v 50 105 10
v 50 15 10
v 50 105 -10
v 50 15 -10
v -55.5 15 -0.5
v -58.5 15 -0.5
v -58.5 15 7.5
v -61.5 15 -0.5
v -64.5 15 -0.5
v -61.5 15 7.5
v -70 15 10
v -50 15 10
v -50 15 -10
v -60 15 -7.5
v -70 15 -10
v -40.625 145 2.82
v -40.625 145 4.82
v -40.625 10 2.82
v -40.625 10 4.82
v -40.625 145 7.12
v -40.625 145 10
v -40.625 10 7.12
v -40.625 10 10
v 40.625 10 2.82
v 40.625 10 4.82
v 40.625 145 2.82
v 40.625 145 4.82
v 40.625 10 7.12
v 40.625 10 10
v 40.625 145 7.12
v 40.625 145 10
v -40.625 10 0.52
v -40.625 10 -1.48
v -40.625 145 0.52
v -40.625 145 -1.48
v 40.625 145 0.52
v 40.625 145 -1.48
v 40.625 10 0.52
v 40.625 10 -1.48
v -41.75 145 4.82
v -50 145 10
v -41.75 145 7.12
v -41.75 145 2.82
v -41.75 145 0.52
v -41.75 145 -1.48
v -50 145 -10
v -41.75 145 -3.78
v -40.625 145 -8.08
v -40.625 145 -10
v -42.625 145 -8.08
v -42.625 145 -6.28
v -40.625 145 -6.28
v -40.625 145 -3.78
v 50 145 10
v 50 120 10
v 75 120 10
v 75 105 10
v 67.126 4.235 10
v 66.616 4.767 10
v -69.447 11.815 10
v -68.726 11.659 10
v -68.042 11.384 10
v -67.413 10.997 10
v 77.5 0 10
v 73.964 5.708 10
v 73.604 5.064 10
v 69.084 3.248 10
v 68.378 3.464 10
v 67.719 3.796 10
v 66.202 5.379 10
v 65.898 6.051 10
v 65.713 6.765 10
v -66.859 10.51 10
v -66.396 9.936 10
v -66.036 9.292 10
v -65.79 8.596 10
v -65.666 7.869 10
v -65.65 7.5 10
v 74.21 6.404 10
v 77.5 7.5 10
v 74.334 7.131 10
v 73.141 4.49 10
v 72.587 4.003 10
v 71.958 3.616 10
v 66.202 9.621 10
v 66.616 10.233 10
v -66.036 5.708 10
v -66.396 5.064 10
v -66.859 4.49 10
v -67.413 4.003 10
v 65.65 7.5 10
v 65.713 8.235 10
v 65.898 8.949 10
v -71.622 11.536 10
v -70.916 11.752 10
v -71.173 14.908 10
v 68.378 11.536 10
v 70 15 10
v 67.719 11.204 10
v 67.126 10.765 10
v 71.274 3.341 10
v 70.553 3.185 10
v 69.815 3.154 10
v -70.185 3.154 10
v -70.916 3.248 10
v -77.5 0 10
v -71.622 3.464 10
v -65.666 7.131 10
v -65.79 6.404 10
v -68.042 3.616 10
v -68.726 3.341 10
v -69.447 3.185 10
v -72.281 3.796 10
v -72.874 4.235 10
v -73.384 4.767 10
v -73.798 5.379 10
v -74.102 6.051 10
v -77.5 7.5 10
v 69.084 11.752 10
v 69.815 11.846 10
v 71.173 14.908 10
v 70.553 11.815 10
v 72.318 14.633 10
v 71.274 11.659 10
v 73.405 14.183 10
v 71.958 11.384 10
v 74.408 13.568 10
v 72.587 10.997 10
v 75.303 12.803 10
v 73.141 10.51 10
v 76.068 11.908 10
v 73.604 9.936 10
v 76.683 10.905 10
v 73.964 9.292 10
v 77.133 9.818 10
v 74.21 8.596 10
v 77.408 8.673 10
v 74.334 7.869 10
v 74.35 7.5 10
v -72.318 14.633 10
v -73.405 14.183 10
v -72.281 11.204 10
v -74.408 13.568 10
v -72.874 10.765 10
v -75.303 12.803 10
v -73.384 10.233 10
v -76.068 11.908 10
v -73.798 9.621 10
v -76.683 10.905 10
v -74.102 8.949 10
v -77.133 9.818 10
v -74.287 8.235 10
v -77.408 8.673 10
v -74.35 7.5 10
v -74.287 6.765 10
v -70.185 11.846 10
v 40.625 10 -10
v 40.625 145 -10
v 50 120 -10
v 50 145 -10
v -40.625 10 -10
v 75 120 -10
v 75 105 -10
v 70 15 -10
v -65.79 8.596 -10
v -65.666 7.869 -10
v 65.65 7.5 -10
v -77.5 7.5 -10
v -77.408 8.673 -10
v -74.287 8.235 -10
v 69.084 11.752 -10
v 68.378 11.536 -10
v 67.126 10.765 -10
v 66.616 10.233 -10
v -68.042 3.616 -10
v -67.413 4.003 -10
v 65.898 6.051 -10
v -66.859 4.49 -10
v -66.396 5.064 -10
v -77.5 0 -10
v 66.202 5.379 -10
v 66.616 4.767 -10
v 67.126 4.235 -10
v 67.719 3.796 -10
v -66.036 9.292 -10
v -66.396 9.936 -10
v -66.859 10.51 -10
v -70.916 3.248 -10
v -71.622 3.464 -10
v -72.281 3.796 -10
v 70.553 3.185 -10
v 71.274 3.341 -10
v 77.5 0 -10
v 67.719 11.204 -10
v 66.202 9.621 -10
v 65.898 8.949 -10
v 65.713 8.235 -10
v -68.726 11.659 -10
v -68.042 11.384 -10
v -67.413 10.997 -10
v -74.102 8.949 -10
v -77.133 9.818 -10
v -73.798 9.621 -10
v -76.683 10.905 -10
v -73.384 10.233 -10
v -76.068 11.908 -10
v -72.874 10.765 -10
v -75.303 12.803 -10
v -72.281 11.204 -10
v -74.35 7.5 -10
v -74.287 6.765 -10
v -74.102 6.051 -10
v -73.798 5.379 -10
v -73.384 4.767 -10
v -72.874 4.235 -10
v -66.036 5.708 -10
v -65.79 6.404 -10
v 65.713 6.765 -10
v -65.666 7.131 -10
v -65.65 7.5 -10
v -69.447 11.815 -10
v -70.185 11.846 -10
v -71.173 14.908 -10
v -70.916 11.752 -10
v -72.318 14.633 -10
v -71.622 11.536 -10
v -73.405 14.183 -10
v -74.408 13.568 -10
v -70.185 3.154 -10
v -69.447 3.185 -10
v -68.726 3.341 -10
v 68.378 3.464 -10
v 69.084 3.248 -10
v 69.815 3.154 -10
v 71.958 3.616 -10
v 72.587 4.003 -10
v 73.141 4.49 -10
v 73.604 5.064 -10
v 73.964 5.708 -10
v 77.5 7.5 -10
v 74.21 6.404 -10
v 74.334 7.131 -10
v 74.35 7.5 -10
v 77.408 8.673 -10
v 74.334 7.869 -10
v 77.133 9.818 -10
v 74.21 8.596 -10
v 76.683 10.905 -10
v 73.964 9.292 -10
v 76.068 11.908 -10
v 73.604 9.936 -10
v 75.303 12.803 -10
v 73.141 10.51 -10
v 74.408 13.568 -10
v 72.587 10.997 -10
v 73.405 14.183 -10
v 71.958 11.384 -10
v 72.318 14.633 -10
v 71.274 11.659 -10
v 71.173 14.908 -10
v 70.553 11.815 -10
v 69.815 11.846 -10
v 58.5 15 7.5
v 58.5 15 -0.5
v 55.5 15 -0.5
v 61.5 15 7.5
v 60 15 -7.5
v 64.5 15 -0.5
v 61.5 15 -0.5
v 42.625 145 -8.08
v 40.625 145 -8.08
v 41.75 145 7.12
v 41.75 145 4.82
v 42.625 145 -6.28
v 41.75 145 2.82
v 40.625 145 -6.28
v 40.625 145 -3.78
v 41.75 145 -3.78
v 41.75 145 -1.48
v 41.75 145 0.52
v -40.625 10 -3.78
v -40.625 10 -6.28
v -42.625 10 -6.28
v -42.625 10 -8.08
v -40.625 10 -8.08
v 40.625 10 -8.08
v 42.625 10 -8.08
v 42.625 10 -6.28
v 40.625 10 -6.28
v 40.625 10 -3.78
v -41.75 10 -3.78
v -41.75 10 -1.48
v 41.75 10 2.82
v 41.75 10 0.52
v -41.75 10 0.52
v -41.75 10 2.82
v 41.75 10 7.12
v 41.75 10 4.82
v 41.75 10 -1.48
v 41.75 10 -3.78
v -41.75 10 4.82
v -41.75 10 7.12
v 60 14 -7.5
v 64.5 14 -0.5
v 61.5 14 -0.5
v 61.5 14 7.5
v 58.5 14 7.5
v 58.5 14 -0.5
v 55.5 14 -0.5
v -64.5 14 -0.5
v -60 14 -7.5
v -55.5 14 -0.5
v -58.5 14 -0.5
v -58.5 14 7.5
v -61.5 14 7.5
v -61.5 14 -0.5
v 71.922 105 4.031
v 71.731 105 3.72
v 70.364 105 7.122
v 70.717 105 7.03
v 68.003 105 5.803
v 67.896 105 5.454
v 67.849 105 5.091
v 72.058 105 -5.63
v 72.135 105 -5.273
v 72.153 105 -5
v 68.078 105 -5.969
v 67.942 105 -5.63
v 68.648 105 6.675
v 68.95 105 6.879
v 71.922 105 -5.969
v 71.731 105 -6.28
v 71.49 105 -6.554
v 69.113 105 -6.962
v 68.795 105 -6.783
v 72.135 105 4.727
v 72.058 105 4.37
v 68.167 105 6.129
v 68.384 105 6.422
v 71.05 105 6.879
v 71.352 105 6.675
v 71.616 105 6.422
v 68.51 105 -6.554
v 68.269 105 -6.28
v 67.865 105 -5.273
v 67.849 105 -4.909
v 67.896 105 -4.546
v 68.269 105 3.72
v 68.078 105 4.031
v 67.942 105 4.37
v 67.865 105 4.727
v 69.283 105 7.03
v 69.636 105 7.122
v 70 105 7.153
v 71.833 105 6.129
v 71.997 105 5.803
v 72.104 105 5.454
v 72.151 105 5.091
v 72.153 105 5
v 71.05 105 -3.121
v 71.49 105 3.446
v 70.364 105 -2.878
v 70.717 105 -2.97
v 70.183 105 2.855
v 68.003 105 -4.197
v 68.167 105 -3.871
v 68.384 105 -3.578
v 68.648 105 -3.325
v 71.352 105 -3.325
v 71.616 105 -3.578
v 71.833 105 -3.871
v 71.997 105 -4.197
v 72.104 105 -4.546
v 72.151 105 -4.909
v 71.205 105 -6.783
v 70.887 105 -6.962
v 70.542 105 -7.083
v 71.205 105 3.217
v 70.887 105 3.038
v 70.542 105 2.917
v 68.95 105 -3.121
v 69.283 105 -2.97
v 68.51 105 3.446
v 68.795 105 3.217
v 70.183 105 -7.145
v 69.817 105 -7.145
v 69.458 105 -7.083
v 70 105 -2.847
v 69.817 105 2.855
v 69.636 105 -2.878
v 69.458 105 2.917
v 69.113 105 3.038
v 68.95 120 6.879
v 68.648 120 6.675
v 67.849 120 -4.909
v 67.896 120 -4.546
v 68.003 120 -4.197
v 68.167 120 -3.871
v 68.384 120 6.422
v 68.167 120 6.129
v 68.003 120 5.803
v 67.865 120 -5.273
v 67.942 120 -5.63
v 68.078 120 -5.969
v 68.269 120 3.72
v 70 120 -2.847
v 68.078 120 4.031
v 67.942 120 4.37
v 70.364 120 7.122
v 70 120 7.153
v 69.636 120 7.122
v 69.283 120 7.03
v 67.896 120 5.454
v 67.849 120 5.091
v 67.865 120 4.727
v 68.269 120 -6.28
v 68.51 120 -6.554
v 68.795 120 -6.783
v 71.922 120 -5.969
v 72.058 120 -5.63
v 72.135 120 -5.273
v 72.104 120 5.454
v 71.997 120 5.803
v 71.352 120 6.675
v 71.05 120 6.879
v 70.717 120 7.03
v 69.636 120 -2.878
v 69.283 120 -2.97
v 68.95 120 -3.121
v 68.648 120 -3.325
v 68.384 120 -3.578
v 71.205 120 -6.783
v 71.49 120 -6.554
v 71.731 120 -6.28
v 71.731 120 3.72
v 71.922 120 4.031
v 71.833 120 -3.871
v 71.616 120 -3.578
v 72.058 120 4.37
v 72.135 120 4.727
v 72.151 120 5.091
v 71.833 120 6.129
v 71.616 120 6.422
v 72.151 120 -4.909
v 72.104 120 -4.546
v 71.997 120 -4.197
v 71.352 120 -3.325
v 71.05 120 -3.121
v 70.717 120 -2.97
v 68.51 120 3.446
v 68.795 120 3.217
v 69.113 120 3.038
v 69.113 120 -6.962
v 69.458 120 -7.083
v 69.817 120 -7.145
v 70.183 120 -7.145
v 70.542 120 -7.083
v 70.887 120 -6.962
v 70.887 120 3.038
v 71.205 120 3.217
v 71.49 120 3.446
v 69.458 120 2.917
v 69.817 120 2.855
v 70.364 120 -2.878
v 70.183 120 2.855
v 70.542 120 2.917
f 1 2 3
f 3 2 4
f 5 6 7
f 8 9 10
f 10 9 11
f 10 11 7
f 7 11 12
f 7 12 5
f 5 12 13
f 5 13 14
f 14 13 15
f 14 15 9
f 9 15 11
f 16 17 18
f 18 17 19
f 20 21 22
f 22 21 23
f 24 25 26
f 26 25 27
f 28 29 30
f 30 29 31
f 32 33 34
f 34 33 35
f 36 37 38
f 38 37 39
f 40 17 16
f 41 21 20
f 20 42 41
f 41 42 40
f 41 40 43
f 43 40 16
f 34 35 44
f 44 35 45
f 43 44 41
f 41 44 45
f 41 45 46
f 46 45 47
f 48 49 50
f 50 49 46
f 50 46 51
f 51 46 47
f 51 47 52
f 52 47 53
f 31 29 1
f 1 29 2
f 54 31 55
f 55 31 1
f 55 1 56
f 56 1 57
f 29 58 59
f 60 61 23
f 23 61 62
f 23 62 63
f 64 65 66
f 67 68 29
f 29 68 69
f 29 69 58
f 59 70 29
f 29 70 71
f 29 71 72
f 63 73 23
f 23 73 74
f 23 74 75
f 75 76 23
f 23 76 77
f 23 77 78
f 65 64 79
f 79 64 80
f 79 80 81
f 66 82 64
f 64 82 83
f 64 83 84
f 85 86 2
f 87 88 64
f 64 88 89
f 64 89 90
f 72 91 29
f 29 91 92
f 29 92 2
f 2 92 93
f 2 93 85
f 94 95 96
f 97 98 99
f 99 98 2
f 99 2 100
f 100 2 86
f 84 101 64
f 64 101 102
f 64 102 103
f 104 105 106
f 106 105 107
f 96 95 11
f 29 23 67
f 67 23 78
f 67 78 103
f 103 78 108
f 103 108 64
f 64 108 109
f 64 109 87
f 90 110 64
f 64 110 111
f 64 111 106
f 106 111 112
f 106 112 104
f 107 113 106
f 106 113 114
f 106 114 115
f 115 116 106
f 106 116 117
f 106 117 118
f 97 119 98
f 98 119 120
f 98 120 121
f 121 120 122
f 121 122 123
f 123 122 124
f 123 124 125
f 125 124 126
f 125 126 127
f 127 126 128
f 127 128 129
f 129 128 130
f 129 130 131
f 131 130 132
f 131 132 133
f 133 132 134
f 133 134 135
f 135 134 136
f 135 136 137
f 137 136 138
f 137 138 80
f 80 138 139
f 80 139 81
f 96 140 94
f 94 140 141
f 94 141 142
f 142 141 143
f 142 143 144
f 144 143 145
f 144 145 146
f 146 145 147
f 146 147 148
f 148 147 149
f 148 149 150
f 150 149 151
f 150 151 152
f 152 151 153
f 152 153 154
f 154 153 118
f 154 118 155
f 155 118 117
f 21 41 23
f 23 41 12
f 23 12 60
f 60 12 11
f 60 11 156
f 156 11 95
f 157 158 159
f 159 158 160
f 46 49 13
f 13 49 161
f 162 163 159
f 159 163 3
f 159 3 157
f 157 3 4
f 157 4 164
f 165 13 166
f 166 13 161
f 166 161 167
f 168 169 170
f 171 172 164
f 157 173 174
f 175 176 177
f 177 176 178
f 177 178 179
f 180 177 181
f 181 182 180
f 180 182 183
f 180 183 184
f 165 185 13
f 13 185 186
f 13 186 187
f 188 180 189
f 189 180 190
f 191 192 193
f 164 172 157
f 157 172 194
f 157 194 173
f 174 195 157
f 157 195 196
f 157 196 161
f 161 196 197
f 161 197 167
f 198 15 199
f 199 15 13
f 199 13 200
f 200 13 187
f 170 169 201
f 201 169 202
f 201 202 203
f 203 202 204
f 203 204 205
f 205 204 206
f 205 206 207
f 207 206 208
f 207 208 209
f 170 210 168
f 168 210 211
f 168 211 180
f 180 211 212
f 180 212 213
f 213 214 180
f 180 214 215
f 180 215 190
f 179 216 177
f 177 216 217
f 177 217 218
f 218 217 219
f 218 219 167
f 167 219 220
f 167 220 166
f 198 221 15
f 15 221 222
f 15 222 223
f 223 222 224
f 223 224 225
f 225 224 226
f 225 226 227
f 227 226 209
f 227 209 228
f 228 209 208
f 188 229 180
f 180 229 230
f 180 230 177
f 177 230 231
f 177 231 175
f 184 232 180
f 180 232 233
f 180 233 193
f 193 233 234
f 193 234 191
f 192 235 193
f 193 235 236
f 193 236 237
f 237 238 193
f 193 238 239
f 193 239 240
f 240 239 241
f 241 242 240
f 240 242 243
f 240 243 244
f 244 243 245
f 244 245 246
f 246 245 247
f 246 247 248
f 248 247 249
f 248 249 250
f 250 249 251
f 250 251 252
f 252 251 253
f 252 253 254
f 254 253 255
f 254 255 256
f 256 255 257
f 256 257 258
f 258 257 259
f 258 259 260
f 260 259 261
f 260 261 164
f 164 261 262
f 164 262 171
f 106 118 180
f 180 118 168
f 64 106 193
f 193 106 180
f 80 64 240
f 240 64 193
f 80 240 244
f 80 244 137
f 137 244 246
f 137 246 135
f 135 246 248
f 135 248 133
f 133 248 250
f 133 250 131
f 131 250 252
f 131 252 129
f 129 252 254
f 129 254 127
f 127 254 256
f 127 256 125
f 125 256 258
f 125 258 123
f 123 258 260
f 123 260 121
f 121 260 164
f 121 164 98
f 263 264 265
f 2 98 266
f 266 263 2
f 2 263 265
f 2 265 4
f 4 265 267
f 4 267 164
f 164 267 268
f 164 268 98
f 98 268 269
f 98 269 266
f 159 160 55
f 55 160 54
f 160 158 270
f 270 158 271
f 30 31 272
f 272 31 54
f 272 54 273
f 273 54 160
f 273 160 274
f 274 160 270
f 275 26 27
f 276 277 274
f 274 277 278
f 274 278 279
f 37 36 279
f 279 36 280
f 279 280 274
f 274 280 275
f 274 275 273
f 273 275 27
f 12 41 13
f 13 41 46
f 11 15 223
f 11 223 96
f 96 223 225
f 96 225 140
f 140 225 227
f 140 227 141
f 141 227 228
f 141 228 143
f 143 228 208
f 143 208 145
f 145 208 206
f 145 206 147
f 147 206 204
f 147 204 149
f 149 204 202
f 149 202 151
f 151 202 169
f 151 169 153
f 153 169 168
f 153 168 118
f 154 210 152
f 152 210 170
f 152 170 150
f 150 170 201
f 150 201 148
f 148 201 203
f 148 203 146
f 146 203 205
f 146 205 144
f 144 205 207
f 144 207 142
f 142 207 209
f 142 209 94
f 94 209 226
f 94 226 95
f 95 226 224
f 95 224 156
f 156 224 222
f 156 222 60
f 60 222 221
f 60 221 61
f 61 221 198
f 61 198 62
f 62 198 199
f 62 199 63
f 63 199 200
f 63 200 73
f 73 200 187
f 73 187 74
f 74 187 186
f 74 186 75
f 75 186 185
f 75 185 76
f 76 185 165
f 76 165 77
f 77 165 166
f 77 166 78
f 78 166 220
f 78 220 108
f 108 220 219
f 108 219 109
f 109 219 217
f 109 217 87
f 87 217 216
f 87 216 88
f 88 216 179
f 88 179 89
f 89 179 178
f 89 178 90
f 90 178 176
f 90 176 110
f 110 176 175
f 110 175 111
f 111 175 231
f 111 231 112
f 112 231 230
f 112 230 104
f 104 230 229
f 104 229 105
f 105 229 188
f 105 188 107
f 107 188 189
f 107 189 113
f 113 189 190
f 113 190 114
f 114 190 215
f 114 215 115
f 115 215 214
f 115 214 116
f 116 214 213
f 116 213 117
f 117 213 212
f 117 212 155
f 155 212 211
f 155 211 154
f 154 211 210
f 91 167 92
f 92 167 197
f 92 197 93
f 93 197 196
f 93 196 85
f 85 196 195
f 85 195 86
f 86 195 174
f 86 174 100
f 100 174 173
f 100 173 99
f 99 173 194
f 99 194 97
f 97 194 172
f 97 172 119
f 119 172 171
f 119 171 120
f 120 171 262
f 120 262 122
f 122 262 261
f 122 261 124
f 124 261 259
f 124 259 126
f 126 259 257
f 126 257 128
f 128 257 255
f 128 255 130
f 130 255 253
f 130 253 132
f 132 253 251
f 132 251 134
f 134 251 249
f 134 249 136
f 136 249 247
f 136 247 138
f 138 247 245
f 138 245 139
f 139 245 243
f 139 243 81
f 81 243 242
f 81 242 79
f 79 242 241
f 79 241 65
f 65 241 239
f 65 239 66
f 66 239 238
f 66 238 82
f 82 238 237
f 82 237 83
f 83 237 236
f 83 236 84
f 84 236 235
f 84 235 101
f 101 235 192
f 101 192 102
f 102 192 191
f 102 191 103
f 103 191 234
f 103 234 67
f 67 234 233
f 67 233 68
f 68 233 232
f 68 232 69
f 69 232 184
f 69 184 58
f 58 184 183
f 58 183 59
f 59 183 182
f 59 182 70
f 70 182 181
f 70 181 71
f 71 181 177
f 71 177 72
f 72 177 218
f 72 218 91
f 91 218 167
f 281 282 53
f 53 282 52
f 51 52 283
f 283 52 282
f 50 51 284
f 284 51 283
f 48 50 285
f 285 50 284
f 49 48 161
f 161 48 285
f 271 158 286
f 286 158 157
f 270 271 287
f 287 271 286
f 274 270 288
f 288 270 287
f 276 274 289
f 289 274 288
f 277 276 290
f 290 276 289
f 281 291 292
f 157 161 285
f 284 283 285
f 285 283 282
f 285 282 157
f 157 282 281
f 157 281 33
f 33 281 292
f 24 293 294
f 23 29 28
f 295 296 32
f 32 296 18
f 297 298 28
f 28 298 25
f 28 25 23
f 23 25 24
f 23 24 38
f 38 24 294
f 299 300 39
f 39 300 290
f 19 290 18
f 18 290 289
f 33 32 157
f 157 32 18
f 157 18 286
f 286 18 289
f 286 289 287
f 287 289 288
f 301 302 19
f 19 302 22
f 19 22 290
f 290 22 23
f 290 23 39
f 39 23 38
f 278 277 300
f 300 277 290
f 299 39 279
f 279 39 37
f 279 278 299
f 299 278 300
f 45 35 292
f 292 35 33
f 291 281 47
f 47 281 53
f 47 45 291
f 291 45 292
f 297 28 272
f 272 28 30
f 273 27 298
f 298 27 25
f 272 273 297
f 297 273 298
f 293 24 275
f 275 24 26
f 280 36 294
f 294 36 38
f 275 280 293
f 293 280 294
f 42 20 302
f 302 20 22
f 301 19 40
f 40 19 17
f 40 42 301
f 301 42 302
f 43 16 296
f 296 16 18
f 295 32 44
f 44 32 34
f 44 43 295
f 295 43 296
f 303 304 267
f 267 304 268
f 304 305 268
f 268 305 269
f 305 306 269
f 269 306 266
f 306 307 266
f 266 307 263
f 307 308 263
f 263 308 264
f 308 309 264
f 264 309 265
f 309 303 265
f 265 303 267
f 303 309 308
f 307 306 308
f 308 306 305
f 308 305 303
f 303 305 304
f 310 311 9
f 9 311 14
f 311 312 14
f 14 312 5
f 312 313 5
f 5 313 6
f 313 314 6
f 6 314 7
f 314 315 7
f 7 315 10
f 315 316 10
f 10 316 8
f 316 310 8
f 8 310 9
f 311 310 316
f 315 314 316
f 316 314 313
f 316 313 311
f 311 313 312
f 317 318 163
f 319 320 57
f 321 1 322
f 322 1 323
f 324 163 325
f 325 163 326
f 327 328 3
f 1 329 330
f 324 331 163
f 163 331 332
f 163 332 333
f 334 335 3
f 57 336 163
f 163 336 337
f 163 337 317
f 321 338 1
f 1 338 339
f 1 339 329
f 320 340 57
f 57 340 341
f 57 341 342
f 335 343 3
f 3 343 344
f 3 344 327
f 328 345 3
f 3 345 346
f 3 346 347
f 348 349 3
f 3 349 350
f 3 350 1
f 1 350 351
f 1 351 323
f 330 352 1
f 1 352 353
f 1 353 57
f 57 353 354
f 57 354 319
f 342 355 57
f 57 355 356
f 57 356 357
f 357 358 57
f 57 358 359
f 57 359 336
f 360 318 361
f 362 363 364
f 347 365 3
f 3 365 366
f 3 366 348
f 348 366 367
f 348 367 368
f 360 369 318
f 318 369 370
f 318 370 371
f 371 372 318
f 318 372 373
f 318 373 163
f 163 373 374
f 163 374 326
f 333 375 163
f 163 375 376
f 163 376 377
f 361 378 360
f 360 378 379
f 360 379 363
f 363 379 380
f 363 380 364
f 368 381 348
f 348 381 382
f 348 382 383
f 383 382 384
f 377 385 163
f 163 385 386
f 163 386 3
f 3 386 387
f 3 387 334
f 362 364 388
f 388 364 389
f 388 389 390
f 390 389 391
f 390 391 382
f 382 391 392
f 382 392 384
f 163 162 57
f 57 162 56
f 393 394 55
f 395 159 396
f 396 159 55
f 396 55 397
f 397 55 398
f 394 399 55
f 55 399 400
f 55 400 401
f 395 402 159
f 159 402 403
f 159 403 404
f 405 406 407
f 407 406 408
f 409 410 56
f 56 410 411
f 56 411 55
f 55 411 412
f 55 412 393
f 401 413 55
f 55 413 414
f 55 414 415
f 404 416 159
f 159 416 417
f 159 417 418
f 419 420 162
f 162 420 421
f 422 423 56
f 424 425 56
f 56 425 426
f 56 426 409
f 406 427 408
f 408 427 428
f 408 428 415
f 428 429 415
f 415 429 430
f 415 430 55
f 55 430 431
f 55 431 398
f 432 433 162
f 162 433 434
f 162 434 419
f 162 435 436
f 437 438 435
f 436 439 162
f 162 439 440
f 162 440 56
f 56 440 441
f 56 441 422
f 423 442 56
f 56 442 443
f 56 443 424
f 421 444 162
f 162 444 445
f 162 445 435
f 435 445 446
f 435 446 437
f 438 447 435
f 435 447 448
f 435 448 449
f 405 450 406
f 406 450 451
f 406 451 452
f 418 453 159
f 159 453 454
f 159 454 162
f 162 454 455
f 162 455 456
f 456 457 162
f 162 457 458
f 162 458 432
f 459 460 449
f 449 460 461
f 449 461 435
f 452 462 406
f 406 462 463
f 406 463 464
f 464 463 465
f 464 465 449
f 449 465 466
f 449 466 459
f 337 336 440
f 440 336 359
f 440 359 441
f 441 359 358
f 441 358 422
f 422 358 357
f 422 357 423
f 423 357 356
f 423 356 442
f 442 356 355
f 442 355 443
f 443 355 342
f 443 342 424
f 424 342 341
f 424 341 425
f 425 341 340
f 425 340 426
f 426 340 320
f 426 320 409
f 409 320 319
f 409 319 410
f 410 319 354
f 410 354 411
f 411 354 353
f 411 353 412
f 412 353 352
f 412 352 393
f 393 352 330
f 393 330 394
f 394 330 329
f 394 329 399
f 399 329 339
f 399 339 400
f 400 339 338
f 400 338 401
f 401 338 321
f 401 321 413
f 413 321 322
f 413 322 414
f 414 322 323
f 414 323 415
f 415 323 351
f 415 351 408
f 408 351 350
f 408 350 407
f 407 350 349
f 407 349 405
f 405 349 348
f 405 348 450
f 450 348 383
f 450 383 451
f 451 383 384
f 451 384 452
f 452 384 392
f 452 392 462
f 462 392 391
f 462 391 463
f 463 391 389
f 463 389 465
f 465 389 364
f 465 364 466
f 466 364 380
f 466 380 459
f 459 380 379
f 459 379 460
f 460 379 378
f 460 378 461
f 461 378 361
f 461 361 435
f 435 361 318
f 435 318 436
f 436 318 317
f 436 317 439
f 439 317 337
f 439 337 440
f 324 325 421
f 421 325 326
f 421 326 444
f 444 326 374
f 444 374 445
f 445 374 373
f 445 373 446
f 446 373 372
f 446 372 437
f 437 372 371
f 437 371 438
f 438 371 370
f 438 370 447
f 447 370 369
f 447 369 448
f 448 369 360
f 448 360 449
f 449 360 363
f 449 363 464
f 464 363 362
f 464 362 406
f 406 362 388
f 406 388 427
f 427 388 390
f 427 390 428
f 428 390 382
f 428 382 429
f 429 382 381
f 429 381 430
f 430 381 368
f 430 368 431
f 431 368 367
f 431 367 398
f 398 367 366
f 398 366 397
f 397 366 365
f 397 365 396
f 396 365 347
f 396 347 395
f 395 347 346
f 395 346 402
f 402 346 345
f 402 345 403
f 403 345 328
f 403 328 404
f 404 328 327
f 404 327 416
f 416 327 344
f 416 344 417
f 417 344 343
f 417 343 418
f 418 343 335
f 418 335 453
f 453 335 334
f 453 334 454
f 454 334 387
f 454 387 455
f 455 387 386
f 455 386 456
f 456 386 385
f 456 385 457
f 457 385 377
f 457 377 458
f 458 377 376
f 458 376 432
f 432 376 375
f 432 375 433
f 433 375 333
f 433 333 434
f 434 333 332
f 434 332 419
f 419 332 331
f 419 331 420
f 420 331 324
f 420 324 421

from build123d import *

# Parameters (mm, degrees)
SKETCH1_R                 = 4.35
BOSS_EXTRUDE1_DEPTH       = 10
CUT_EXTRUDE1_DEPTH        = 135
SKETCH3_W                 = 83.5
SKETCH3_H                 = 2.3
CUT_EXTRUDE2_DEPTH        = 135
LPATTERN1_COUNT           = 3
LPATTERN1_PITCH           = 4.3
CUT_EXTRUDE3_DEPTH        = 1
SKETCH5_W                 = 25
SKETCH5_H                 = 15
BOSS_EXTRUDE2_DEPTH       = 20
F_6_CLEARANCE_HOLE1_D     = 4.3053
F_6_CLEARANCE_HOLE1_DEPTH = 20
F_6_CLEARANCE_HOLE1_TIP   = 1.293442612


with BuildPart() as part:
    # Sketch1 → Boss-Extrude1 (new, symmetric)
    with BuildSketch(Plane.XY):
        with BuildLine():
            Line((-77.5, 0), (77.5, 0))
            Line((77.5, 0), (77.5, 7.5))
            ThreePointArc((77.5, 7.5), (75.303300859, 12.803300859), (70, 15))
            Line((70, 15), (50, 15))
            Line((50, 15), (50, 145))
            Line((50, 145), (-50, 145))
            Line((-50, 145), (-50, 15))
            Line((-50, 15), (-70, 15))
            ThreePointArc((-70, 15), (-75.303300859, 12.803300859), (-77.5, 7.5))
            Line((-77.5, 7.5), (-77.5, 0))
        make_face()
        with Locations((-70, 7.5)):
            Circle(SKETCH1_R, mode=Mode.SUBTRACT)
        with Locations((70, 7.5)):
            Circle(SKETCH1_R, mode=Mode.SUBTRACT)
    extrude(amount=BOSS_EXTRUDE1_DEPTH, both=True)

    # Sketch2 → Cut-Extrude1 (cut)
    with BuildSketch(Plane(origin=(0, 145, 0), x_dir=(1, 0, 0), z_dir=(0, 1, 0))):
        Polygon((-40.625, -10), (-40.625, 6.28), (-42.625, 6.28), (-42.625, 8.08), (-40.625, 8.08), (-40.625, 10), (40.625, 10), (40.625, 8.08), (42.625, 8.08), (42.625, 6.28), (40.625, 6.28), (40.625, -10), align=None)
    extrude(amount=-CUT_EXTRUDE1_DEPTH, mode=Mode.SUBTRACT)

    # Sketch3 → Cut-Extrude2 (cut)
    with BuildSketch(Plane(origin=(0, 145, 0), x_dir=(1, 0, 0), z_dir=(0, 1, 0))):
        with Locations((0, 2.63)):
            Rectangle(SKETCH3_W, SKETCH3_H)
    cut_extrude2 = extrude(amount=-CUT_EXTRUDE2_DEPTH, mode=Mode.SUBTRACT)

    # LPattern1: Cut-Extrude2 ×3
    with Locations(*[(0, 0, i * LPATTERN1_PITCH) for i in range(1, LPATTERN1_COUNT)]):
        add(cut_extrude2, mode=Mode.SUBTRACT)

    # Sketch4 → Cut-Extrude3 (cut)
    with BuildSketch(Plane(origin=(0, 15, 0), x_dir=(1, 0, 0), z_dir=(0, 1, 0))):
        Polygon((60, 7.5), (55.5, 0.5), (58.5, 0.5), (58.5, -7.5), (61.5, -7.5), (61.5, 0.5), (64.5, 0.5), align=None)
    cut_extrude3 = extrude(amount=-CUT_EXTRUDE3_DEPTH, mode=Mode.SUBTRACT)

    # Mirror1: Cut-Extrude3 across plane
    add(cut_extrude3.mirror(Plane(origin=(0, 0, 0), x_dir=(0, 0, 1), z_dir=(1, 0, 0))), mode=Mode.SUBTRACT)

    # Sketch5 → Boss-Extrude2 (add)
    with BuildSketch(Plane(origin=(0, 0, -10), x_dir=(-1, 0, 0), z_dir=(0, 0, -1))):
        with Locations((-62.5, 112.5)):
            Rectangle(SKETCH5_W, SKETCH5_H)
    extrude(amount=-BOSS_EXTRUDE2_DEPTH)

    # #6 Clearance Hole1
    with Locations(Plane(origin=(0, 120, 0), x_dir=(1, 0, 0), z_dir=(0, 1, 0))):
        with Locations((70, 5), (70, -5)):
            Hole(F_6_CLEARANCE_HOLE1_D / 2, depth=F_6_CLEARANCE_HOLE1_DEPTH)
            with Locations((0, 0, -(F_6_CLEARANCE_HOLE1_DEPTH + F_6_CLEARANCE_HOLE1_TIP / 2))):  # 118° drill point
                Cone(0, F_6_CLEARANCE_HOLE1_D / 2, F_6_CLEARANCE_HOLE1_TIP, mode=Mode.SUBTRACT)


solid = part.part
